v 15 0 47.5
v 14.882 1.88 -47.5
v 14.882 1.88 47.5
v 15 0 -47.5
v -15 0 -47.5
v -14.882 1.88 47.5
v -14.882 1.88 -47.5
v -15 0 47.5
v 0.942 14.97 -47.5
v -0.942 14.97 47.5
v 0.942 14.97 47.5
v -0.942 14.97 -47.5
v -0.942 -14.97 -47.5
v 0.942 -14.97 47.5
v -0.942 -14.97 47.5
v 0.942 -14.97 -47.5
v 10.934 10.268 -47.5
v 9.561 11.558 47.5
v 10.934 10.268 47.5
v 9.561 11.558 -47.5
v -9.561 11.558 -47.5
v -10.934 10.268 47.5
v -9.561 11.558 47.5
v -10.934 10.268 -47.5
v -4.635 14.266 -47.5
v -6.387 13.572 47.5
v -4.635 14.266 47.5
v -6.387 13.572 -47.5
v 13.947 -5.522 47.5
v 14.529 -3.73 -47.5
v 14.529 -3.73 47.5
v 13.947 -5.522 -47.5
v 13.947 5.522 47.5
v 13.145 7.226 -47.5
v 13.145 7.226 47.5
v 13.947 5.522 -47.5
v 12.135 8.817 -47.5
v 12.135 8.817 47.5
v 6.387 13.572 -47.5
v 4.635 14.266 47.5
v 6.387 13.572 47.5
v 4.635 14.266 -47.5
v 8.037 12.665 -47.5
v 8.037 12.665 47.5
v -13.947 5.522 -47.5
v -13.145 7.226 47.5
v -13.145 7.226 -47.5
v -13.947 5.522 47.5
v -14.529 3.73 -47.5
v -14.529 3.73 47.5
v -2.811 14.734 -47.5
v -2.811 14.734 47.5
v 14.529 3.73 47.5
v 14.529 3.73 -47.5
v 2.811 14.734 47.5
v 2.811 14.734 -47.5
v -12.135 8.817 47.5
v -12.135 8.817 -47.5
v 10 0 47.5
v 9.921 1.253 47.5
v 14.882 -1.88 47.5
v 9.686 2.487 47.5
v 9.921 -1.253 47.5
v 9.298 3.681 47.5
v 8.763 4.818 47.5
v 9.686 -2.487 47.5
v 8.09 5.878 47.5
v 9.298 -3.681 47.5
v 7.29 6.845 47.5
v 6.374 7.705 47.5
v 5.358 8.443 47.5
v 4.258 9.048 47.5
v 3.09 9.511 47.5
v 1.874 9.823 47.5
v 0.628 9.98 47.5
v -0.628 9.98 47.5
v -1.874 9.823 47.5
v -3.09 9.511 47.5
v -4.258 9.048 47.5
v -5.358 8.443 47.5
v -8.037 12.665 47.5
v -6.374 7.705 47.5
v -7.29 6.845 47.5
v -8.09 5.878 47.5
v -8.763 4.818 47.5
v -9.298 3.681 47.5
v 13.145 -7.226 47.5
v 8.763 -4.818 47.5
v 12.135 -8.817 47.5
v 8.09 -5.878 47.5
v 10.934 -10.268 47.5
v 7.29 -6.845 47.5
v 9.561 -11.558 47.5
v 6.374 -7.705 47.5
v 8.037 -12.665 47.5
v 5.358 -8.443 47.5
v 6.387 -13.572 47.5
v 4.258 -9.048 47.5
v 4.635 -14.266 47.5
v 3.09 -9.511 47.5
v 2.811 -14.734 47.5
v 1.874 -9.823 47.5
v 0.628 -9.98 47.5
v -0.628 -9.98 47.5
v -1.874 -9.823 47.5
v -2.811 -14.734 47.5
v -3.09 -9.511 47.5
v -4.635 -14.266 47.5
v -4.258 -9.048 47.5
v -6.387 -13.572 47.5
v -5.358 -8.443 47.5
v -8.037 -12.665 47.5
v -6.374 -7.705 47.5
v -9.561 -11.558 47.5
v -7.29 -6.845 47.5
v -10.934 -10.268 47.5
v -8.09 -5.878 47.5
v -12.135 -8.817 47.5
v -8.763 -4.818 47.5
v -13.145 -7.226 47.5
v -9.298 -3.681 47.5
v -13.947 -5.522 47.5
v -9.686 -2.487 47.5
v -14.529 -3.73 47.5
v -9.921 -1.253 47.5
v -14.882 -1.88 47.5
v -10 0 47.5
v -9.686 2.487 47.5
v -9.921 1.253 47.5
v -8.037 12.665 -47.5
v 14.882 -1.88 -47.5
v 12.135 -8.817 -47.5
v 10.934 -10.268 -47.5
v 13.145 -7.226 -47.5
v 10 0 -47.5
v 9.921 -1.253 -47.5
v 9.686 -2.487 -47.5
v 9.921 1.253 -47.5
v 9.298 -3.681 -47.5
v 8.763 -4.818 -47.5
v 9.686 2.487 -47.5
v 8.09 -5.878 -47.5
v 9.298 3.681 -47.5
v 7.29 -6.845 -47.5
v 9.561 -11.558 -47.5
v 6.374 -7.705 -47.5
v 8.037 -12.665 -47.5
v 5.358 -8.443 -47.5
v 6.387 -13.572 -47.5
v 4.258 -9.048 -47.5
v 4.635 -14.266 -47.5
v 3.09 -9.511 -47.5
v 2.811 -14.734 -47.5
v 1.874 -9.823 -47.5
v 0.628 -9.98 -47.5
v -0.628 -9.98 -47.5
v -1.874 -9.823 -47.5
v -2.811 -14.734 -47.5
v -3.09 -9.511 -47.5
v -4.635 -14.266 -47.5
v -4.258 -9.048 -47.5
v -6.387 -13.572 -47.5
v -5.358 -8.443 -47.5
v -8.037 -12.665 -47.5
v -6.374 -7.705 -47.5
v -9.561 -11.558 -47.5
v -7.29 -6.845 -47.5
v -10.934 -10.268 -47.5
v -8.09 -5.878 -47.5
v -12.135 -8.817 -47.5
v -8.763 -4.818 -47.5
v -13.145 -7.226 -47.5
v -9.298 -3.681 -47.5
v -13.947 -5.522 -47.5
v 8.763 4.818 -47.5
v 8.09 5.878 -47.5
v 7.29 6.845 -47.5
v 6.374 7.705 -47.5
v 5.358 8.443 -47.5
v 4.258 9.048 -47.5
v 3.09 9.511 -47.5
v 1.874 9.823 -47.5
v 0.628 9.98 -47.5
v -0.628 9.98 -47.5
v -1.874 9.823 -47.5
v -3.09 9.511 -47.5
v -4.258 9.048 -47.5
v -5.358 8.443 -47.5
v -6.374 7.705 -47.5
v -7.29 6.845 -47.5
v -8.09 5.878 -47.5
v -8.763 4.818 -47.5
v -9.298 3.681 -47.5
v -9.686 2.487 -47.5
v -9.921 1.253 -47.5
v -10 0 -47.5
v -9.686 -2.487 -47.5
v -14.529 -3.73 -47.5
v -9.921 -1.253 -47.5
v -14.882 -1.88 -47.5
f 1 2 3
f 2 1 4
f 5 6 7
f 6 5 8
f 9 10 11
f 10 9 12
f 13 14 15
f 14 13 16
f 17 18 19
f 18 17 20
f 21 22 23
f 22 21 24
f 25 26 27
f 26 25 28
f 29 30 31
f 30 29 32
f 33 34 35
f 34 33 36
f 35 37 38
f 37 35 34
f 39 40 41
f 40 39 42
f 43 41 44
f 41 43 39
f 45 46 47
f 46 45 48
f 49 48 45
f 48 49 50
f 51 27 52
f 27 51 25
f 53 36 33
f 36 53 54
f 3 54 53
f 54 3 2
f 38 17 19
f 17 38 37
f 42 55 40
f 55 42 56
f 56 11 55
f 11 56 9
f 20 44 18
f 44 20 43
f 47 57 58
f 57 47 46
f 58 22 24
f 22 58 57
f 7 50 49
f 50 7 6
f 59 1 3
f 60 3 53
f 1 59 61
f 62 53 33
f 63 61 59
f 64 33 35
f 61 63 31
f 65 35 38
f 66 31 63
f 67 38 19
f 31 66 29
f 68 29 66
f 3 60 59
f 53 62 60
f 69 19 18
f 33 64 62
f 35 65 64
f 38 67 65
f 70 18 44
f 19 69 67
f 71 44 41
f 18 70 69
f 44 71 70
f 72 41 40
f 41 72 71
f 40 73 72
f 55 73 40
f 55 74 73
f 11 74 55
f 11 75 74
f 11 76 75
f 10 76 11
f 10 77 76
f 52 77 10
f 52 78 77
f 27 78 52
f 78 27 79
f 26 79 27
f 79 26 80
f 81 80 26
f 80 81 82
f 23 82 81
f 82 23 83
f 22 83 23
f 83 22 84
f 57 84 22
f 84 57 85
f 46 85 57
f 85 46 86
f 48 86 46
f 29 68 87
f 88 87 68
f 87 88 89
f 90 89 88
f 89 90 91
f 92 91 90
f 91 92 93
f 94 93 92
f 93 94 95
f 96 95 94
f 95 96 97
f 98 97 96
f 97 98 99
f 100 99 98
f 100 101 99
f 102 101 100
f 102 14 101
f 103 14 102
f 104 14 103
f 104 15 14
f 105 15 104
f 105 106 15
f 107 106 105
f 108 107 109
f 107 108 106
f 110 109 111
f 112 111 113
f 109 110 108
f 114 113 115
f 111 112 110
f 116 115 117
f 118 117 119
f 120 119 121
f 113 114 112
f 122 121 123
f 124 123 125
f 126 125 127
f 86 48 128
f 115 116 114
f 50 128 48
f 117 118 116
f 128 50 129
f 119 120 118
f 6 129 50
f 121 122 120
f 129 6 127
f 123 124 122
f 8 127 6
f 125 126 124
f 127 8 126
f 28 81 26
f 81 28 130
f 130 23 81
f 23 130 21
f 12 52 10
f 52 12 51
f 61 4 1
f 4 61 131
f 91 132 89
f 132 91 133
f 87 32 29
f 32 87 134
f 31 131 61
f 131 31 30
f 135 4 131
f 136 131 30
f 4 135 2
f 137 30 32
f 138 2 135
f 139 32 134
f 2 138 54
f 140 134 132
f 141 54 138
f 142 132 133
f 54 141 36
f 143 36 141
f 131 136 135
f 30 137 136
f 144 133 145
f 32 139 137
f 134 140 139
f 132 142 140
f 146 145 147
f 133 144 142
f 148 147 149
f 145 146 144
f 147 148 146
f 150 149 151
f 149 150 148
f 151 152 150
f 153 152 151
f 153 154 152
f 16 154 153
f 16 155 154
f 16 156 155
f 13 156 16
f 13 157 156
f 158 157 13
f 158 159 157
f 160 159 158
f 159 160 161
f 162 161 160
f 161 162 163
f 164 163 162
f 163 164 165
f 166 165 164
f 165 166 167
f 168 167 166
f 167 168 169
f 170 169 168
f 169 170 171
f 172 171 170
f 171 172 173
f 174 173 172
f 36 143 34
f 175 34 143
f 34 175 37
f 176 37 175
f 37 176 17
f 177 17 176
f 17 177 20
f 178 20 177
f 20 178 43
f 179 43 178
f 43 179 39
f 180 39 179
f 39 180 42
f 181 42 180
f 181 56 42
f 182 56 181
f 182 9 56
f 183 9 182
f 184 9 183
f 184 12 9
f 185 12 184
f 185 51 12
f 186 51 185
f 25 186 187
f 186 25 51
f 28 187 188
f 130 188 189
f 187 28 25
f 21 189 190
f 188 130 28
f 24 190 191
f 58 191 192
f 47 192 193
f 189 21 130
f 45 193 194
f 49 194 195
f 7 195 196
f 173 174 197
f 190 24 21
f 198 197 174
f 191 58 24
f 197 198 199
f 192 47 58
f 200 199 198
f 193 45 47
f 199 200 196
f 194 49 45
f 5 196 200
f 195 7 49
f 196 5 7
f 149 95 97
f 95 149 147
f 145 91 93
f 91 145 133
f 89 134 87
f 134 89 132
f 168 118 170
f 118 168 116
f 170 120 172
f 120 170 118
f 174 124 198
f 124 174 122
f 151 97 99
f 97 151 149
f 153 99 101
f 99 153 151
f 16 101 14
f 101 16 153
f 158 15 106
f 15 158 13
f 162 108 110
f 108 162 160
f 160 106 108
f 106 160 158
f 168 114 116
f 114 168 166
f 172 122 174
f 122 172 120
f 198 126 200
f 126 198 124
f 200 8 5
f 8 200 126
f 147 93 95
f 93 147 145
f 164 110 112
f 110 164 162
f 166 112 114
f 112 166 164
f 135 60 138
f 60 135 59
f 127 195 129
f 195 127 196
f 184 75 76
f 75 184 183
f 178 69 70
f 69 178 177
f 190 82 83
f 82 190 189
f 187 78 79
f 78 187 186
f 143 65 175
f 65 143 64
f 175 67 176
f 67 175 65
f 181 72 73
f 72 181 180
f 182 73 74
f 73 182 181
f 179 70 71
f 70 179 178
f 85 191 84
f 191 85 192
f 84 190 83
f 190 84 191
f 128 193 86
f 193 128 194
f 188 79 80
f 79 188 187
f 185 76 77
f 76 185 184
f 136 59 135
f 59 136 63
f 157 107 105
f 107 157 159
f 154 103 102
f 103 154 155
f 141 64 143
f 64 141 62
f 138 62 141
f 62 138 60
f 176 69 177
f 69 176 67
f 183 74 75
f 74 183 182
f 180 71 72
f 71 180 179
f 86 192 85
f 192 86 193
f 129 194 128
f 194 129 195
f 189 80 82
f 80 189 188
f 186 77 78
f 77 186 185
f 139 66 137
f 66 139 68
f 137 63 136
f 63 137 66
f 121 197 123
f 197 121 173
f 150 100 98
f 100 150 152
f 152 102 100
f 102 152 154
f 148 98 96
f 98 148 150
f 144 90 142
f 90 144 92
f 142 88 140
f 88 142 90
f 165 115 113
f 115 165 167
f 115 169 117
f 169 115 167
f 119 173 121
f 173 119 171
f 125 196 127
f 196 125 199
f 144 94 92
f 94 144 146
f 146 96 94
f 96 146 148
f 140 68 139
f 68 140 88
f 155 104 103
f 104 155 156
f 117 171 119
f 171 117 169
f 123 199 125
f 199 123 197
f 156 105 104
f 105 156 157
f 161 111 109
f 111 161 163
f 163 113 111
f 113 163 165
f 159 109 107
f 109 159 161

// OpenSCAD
$fn = 50;


difference() {
	union() {
		translate(v = [0, 0, -47.5000000000]) {
			cylinder(h = 95, r = 15.0000000000);
		}
	}
	union() {
		translate(v = [0, 0, -100.0000000000]) {
			cylinder(h = 200, r = 10);
		}
	}
}
